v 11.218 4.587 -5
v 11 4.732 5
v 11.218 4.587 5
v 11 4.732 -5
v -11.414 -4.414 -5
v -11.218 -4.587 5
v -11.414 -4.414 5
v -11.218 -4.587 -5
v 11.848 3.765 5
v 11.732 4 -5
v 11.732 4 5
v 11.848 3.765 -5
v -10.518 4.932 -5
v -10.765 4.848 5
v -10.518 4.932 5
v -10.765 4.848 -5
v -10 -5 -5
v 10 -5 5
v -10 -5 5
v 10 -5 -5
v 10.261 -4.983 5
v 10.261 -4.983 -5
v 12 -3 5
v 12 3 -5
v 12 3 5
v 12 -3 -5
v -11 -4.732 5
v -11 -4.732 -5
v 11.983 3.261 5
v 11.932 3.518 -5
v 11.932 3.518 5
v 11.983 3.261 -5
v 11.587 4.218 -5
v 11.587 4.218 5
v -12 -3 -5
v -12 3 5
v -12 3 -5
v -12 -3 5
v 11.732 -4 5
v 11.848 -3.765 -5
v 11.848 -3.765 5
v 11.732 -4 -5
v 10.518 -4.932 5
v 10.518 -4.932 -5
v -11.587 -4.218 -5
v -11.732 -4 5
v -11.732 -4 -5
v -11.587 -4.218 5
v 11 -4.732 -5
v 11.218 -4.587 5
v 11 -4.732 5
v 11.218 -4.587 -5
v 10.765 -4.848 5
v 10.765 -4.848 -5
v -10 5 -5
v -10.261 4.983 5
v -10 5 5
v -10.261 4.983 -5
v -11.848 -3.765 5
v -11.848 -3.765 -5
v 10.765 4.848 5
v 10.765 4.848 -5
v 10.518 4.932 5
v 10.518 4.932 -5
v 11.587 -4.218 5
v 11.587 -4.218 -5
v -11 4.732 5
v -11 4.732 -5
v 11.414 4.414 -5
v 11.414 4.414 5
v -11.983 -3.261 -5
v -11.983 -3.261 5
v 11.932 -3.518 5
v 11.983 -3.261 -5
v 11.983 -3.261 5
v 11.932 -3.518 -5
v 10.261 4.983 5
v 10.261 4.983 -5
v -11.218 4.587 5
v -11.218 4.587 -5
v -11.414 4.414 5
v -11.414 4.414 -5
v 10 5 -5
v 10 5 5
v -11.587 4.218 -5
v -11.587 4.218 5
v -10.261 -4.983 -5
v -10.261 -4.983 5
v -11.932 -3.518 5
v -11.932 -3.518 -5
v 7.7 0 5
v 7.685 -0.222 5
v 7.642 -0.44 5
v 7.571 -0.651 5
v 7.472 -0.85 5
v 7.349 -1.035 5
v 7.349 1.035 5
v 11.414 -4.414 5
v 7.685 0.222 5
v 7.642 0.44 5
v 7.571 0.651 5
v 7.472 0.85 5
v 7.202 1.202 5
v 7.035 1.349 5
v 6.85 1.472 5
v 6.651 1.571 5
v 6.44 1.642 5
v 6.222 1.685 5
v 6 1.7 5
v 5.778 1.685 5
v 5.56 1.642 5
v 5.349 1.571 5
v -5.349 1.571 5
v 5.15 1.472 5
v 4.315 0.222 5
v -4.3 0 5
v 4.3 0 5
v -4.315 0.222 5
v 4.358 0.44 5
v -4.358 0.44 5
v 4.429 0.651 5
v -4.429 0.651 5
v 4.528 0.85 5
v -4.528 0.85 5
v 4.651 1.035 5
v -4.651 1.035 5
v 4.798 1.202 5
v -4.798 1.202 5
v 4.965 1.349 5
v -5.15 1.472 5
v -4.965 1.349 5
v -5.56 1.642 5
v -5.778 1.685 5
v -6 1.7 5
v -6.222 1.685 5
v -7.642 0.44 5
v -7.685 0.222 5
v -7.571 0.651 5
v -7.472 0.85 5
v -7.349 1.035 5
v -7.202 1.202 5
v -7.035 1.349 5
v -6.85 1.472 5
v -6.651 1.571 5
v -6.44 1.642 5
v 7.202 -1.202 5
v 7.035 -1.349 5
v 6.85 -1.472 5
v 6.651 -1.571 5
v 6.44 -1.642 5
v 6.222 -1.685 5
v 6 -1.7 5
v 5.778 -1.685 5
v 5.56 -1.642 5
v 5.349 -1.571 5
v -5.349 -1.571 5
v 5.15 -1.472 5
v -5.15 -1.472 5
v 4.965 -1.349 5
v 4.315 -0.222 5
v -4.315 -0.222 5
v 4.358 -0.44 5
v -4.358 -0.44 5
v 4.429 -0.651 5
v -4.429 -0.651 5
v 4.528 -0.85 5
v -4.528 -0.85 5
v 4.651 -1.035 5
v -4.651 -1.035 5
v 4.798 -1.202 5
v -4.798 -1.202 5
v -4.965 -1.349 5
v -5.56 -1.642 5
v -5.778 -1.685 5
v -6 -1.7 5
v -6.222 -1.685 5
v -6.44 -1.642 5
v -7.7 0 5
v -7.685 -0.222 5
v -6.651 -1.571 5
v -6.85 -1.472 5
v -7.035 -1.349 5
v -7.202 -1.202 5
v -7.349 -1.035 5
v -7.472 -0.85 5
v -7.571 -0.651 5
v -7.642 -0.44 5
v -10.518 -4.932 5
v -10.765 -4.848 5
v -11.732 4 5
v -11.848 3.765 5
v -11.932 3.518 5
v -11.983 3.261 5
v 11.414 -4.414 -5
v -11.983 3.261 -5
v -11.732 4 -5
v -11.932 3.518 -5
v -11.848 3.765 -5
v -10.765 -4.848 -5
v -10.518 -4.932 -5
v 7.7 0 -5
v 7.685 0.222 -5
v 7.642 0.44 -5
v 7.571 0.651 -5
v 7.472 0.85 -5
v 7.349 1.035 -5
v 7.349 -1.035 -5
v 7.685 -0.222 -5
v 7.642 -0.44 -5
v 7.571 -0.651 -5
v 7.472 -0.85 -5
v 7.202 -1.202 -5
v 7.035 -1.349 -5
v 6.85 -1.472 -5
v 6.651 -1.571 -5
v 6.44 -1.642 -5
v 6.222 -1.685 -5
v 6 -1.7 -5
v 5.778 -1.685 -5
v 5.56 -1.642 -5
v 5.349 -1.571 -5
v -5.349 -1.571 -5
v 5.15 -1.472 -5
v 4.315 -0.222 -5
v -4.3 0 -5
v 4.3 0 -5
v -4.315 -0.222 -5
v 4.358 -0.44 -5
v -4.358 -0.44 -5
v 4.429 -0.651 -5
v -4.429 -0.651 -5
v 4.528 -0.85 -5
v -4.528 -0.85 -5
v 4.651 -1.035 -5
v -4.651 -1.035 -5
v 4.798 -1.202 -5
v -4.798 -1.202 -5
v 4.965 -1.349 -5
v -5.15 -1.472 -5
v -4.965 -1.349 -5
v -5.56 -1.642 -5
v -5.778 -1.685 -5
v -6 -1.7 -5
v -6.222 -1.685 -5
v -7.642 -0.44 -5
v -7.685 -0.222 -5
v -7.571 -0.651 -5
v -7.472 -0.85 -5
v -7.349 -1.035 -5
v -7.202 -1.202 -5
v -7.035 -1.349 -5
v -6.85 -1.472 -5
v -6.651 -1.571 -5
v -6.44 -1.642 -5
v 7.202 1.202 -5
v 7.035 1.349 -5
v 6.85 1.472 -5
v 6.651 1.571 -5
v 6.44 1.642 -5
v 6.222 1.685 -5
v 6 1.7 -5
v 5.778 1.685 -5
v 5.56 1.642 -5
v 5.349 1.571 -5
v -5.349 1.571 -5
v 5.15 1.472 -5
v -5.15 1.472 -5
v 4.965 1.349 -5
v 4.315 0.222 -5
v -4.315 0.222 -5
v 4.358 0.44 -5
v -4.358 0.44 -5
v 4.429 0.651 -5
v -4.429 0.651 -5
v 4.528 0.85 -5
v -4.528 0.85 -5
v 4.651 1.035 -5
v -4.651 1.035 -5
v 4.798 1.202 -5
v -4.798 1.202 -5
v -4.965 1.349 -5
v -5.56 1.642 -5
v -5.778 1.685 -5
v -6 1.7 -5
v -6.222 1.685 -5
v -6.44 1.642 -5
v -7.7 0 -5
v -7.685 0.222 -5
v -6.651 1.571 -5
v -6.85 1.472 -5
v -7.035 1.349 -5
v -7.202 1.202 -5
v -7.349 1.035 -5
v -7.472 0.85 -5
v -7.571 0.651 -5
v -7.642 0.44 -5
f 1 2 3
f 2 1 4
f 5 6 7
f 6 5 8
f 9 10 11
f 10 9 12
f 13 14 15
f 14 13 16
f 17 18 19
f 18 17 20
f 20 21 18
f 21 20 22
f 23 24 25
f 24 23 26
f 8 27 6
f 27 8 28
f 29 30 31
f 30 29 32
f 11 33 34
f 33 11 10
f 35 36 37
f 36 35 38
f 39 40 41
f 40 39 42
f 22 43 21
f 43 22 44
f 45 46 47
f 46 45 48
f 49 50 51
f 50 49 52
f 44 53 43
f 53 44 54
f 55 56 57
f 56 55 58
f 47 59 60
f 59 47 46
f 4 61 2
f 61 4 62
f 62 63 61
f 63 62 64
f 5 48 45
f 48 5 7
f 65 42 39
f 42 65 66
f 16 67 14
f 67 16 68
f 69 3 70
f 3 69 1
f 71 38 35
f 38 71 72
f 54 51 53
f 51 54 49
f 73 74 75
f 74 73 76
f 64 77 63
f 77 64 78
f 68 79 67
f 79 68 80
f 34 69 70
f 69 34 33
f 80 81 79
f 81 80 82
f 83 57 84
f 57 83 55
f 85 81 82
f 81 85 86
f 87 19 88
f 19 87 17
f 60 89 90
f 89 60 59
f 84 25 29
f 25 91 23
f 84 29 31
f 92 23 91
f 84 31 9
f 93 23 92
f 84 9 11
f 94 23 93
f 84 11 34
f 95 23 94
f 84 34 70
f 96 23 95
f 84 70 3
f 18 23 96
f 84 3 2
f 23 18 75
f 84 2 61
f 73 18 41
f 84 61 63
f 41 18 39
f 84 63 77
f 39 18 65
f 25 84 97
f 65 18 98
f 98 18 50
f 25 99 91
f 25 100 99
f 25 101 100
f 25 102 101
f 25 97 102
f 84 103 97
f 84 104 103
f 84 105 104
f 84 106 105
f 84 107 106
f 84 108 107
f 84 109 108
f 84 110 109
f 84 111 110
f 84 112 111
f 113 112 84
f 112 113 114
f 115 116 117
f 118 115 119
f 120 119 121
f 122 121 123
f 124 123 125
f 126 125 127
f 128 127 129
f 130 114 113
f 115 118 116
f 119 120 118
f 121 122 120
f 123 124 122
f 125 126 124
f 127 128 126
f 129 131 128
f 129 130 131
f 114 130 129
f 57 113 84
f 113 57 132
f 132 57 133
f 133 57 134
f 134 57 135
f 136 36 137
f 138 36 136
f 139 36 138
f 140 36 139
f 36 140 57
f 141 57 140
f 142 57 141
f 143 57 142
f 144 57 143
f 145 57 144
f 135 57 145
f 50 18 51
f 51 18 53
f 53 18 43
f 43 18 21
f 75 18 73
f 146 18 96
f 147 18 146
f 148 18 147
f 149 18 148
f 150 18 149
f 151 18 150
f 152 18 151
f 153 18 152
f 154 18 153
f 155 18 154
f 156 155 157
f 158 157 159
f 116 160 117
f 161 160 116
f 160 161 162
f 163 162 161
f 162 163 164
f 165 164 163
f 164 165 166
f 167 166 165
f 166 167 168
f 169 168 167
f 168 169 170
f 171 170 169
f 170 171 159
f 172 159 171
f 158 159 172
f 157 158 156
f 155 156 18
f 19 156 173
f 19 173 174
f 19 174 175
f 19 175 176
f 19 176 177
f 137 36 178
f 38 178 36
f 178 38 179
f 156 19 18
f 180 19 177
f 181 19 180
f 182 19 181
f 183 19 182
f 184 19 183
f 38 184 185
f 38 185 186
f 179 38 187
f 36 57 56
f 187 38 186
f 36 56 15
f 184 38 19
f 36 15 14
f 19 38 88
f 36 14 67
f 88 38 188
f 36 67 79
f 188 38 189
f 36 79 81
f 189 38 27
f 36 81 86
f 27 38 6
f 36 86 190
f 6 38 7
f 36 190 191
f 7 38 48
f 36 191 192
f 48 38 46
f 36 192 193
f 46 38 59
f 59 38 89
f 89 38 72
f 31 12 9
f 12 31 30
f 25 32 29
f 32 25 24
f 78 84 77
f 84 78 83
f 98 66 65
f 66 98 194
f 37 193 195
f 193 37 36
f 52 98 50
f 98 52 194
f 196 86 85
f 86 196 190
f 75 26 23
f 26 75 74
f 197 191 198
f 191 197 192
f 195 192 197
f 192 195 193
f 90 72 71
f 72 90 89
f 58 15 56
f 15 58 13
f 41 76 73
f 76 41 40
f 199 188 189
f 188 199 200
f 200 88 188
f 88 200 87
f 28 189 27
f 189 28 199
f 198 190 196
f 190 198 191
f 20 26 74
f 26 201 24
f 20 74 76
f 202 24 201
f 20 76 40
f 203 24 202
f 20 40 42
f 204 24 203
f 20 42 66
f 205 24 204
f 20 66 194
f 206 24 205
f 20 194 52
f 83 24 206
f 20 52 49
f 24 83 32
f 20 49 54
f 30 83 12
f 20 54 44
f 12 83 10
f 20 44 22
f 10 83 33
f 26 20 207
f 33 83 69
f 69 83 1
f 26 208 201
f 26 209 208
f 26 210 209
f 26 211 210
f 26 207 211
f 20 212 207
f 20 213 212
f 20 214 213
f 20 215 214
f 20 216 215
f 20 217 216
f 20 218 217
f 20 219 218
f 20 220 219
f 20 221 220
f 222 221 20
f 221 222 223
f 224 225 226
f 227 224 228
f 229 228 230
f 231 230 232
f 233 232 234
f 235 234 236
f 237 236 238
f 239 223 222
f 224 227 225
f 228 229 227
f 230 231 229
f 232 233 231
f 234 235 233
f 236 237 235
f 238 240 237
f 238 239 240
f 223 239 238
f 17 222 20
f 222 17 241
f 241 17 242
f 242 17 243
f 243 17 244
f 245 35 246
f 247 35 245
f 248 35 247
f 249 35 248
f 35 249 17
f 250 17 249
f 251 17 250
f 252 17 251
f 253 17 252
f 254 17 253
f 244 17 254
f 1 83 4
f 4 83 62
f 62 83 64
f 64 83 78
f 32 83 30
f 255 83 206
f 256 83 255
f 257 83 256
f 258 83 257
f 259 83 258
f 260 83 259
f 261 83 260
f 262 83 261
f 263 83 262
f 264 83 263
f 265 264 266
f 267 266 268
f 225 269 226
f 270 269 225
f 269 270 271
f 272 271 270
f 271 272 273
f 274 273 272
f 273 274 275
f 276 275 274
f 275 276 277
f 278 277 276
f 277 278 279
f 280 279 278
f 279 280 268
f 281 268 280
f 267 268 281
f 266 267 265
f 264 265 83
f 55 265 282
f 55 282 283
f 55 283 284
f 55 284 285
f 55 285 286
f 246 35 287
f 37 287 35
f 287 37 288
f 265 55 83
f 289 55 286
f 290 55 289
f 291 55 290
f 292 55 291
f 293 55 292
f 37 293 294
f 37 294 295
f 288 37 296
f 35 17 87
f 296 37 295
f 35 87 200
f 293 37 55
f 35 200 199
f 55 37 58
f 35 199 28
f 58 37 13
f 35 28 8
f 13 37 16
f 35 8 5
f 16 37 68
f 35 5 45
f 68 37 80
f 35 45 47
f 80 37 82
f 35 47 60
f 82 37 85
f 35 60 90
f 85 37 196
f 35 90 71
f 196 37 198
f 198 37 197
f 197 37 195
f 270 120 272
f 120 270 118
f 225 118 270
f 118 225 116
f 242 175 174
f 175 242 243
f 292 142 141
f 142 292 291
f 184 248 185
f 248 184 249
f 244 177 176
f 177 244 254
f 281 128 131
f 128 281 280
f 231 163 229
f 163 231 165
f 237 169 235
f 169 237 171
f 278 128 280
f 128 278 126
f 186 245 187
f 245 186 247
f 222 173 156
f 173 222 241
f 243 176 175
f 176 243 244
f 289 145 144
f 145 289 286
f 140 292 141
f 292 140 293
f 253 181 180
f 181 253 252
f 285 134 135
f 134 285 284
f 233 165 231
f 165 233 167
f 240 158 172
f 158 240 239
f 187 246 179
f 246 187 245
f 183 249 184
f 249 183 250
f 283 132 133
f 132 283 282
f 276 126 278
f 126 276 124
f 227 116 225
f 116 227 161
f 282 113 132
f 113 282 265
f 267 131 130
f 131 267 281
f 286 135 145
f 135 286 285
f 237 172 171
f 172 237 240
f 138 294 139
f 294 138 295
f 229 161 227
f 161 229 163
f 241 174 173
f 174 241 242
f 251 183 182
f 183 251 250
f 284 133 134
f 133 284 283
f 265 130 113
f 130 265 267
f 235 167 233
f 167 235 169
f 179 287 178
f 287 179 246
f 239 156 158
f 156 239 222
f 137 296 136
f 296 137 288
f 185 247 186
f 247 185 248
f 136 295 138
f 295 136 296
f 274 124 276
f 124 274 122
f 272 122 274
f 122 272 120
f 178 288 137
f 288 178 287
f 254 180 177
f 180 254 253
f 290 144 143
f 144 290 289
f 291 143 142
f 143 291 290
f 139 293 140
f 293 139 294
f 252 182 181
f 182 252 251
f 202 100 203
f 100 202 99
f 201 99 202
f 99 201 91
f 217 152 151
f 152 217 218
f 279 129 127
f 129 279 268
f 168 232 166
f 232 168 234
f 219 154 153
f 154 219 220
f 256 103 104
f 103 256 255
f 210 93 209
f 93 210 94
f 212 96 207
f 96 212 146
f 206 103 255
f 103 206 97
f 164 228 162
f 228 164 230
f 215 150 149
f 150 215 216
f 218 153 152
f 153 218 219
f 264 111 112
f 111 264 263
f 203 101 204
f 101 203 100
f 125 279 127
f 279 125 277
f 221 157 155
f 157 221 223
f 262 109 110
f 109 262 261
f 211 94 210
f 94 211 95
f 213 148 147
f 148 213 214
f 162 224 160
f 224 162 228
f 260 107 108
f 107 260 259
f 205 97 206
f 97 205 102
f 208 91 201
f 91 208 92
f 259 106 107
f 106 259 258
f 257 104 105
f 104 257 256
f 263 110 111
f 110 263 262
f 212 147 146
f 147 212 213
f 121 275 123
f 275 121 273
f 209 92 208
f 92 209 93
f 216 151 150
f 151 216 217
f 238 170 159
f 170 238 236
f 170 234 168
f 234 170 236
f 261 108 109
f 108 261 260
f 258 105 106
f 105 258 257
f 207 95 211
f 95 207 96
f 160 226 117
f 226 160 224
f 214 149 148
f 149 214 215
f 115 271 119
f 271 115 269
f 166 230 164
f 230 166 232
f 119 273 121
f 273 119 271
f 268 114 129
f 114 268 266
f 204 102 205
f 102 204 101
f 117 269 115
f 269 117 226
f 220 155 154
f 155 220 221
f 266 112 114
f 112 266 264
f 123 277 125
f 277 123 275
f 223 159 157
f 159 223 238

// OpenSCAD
// file: common.scad
// Shared Rev A CAD parameters and helper modules.
// Units: millimeters.

$fn = 48;

// Hitec HS-625MG vendor baseline. Verify with calipers before final print.
servo_l = 40.6;
servo_w = 19.8;
servo_h = 37.8;
spline_d = 6.0;
spline_h = 5.0;
servo_mount_slot_l = 9.0;
servo_mount_slot_w = 3.4;
servo_mount_span_x = 49.5;
servo_mount_span_y = 27.5;

// Rev A structure.
base_l = 160;
base_w = 120;
base_t = 6;
wall_t = 6;
mount_t = 5;
outer_w = 95;
outer_h = 95;
outer_depth = 16;
inner_w = 55;
inner_h = 72;
nozzle_l = 85;
nozzle_d = 24;
imu_l = 28;
imu_w = 22;
bearing_d = 8.0;
shaft_d = 4.0;

// Manufacturing assumptions.
m3_clearance_d = 3.4;
bench_fastener_d = 5.0;
fillet_r = 3.0;

module rounded_plate(size_xyz, r=3) {
    hull() {
        for (x=[-size_xyz[0]/2+r, size_xyz[0]/2-r])
            for (y=[-size_xyz[1]/2+r, size_xyz[1]/2-r])
                translate([x, y, 0])
                    cylinder(h=size_xyz[2], r=r, center=true);
    }
}

module slotted_hole(slot_l, slot_w, h=2) {
    hull() {
        translate([-slot_l/2 + slot_w/2, 0, 0])
            cylinder(h=h, d=slot_w, center=true);
        translate([slot_l/2 - slot_w/2, 0, 0])
            cylinder(h=h, d=slot_w, center=true);
    }
}

module servo_mount_plate() {
    difference() {
        rounded_plate([servo_mount_span_x + 18, servo_mount_span_y + 16, mount_t], 2);

        for (x=[-servo_mount_span_x/2, servo_mount_span_x/2])
            for (y=[-servo_mount_span_y/2, servo_mount_span_y/2])
                translate([x, y, 0])
                    slotted_hole(servo_mount_slot_l, servo_mount_slot_w, mount_t + 1);
    }
}

module servo_body_clearance(extra=1.0) {
    cube([servo_l + extra, servo_w + extra, servo_h + extra], center=true);
}

module shaft_clearance(h=120) {
    rotate([90, 0, 0])
        cylinder(h=h, d=shaft_d + 0.6, center=true);
}

module imu_pad() {
    difference() {
        rounded_plate([imu_l + 8, imu_w + 8, 3], 2);
        for (x=[-(imu_l/2 - 4), imu_l/2 - 4])
            for (y=[-(imu_w/2 - 4), imu_w/2 - 4])
                translate([x, y, 0])
                    cylinder(h=4, d=2.2, center=true);
    }
}
// main file
include <common.scad>

// Rev A hard-stop block.
// Print flat; use two mirrored copies per constrained axis as needed.

difference() {
    rounded_plate([24, 10, 10], 2);
    translate([-6, 0, 0])
        cylinder(h=11, d=m3_clearance_d, center=true);
    translate([6, 0, 0])
        cylinder(h=11, d=m3_clearance_d, center=true);
}
